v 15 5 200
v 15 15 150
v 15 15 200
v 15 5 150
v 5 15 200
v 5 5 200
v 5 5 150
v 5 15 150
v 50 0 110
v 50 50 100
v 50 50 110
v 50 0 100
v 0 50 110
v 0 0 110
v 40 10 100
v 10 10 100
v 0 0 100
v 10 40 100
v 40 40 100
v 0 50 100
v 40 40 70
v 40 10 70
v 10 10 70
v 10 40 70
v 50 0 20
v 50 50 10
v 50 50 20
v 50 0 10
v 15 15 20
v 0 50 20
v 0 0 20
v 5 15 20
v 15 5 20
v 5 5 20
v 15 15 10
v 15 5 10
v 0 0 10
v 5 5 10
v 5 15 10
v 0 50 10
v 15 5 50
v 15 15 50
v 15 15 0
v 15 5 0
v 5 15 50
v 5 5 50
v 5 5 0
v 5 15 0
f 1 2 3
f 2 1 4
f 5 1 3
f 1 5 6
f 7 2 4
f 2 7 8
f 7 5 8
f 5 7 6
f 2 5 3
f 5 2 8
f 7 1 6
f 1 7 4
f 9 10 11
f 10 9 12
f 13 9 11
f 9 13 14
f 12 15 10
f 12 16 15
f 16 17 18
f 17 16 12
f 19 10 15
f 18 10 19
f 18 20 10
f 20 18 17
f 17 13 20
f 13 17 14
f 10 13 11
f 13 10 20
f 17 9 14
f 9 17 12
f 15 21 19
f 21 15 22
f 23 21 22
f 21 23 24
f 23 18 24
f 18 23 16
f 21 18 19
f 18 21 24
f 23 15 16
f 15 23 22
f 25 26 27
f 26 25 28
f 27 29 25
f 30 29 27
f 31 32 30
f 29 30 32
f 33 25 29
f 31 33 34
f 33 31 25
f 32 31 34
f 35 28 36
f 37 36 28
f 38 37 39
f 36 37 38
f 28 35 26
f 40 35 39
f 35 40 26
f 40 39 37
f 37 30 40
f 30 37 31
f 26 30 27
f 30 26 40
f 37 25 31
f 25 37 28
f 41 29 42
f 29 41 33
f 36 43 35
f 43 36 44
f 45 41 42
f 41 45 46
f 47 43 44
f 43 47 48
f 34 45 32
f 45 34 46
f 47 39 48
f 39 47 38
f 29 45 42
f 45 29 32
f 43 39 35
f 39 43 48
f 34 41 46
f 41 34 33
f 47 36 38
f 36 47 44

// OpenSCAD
// Define dimensions for each component
module tall_narrow_block() {
    cube([10, 10, 50]); // Width: 10, Depth: 10, Height: 50
}

module short_wide_block() {
    cube([50, 50, 10]); // Width: 50, Depth: 50, Height: 10
}

module medium_block() {
    cube([30, 30, 30]); // Width: 30, Depth: 30, Height: 30
}

// Assemble the model based on the positional relationships
module assembly() {
    // Layer 1: tall_narrow_block_1
    translate([5, 5, 150]) // Adjusted position to align vertically and closer
        tall_narrow_block();

    // Layer 2: short_wide_block_1
    translate([0, 0, 100]) // Corrected alignment to remove rotation
        short_wide_block();

    // Layer 3: medium_block_1
    translate([10, 10, 70]) // Adjusted height to match symmetry
        medium_block();

    // Layer 4: medium_block_2
    translate([10, 10, 70]) // Adjusted height to match symmetry
        medium_block();

    // Layer 5: short_wide_block_2
    translate([0, 0, 10]) // Corrected alignment to remove rotation
        short_wide_block();

    // Layer 6: tall_narrow_block_2
    translate([5, 5, 0]) // Adjusted position to align vertically and closer
        tall_narrow_block();
}

// Render the assembly
assembly();
